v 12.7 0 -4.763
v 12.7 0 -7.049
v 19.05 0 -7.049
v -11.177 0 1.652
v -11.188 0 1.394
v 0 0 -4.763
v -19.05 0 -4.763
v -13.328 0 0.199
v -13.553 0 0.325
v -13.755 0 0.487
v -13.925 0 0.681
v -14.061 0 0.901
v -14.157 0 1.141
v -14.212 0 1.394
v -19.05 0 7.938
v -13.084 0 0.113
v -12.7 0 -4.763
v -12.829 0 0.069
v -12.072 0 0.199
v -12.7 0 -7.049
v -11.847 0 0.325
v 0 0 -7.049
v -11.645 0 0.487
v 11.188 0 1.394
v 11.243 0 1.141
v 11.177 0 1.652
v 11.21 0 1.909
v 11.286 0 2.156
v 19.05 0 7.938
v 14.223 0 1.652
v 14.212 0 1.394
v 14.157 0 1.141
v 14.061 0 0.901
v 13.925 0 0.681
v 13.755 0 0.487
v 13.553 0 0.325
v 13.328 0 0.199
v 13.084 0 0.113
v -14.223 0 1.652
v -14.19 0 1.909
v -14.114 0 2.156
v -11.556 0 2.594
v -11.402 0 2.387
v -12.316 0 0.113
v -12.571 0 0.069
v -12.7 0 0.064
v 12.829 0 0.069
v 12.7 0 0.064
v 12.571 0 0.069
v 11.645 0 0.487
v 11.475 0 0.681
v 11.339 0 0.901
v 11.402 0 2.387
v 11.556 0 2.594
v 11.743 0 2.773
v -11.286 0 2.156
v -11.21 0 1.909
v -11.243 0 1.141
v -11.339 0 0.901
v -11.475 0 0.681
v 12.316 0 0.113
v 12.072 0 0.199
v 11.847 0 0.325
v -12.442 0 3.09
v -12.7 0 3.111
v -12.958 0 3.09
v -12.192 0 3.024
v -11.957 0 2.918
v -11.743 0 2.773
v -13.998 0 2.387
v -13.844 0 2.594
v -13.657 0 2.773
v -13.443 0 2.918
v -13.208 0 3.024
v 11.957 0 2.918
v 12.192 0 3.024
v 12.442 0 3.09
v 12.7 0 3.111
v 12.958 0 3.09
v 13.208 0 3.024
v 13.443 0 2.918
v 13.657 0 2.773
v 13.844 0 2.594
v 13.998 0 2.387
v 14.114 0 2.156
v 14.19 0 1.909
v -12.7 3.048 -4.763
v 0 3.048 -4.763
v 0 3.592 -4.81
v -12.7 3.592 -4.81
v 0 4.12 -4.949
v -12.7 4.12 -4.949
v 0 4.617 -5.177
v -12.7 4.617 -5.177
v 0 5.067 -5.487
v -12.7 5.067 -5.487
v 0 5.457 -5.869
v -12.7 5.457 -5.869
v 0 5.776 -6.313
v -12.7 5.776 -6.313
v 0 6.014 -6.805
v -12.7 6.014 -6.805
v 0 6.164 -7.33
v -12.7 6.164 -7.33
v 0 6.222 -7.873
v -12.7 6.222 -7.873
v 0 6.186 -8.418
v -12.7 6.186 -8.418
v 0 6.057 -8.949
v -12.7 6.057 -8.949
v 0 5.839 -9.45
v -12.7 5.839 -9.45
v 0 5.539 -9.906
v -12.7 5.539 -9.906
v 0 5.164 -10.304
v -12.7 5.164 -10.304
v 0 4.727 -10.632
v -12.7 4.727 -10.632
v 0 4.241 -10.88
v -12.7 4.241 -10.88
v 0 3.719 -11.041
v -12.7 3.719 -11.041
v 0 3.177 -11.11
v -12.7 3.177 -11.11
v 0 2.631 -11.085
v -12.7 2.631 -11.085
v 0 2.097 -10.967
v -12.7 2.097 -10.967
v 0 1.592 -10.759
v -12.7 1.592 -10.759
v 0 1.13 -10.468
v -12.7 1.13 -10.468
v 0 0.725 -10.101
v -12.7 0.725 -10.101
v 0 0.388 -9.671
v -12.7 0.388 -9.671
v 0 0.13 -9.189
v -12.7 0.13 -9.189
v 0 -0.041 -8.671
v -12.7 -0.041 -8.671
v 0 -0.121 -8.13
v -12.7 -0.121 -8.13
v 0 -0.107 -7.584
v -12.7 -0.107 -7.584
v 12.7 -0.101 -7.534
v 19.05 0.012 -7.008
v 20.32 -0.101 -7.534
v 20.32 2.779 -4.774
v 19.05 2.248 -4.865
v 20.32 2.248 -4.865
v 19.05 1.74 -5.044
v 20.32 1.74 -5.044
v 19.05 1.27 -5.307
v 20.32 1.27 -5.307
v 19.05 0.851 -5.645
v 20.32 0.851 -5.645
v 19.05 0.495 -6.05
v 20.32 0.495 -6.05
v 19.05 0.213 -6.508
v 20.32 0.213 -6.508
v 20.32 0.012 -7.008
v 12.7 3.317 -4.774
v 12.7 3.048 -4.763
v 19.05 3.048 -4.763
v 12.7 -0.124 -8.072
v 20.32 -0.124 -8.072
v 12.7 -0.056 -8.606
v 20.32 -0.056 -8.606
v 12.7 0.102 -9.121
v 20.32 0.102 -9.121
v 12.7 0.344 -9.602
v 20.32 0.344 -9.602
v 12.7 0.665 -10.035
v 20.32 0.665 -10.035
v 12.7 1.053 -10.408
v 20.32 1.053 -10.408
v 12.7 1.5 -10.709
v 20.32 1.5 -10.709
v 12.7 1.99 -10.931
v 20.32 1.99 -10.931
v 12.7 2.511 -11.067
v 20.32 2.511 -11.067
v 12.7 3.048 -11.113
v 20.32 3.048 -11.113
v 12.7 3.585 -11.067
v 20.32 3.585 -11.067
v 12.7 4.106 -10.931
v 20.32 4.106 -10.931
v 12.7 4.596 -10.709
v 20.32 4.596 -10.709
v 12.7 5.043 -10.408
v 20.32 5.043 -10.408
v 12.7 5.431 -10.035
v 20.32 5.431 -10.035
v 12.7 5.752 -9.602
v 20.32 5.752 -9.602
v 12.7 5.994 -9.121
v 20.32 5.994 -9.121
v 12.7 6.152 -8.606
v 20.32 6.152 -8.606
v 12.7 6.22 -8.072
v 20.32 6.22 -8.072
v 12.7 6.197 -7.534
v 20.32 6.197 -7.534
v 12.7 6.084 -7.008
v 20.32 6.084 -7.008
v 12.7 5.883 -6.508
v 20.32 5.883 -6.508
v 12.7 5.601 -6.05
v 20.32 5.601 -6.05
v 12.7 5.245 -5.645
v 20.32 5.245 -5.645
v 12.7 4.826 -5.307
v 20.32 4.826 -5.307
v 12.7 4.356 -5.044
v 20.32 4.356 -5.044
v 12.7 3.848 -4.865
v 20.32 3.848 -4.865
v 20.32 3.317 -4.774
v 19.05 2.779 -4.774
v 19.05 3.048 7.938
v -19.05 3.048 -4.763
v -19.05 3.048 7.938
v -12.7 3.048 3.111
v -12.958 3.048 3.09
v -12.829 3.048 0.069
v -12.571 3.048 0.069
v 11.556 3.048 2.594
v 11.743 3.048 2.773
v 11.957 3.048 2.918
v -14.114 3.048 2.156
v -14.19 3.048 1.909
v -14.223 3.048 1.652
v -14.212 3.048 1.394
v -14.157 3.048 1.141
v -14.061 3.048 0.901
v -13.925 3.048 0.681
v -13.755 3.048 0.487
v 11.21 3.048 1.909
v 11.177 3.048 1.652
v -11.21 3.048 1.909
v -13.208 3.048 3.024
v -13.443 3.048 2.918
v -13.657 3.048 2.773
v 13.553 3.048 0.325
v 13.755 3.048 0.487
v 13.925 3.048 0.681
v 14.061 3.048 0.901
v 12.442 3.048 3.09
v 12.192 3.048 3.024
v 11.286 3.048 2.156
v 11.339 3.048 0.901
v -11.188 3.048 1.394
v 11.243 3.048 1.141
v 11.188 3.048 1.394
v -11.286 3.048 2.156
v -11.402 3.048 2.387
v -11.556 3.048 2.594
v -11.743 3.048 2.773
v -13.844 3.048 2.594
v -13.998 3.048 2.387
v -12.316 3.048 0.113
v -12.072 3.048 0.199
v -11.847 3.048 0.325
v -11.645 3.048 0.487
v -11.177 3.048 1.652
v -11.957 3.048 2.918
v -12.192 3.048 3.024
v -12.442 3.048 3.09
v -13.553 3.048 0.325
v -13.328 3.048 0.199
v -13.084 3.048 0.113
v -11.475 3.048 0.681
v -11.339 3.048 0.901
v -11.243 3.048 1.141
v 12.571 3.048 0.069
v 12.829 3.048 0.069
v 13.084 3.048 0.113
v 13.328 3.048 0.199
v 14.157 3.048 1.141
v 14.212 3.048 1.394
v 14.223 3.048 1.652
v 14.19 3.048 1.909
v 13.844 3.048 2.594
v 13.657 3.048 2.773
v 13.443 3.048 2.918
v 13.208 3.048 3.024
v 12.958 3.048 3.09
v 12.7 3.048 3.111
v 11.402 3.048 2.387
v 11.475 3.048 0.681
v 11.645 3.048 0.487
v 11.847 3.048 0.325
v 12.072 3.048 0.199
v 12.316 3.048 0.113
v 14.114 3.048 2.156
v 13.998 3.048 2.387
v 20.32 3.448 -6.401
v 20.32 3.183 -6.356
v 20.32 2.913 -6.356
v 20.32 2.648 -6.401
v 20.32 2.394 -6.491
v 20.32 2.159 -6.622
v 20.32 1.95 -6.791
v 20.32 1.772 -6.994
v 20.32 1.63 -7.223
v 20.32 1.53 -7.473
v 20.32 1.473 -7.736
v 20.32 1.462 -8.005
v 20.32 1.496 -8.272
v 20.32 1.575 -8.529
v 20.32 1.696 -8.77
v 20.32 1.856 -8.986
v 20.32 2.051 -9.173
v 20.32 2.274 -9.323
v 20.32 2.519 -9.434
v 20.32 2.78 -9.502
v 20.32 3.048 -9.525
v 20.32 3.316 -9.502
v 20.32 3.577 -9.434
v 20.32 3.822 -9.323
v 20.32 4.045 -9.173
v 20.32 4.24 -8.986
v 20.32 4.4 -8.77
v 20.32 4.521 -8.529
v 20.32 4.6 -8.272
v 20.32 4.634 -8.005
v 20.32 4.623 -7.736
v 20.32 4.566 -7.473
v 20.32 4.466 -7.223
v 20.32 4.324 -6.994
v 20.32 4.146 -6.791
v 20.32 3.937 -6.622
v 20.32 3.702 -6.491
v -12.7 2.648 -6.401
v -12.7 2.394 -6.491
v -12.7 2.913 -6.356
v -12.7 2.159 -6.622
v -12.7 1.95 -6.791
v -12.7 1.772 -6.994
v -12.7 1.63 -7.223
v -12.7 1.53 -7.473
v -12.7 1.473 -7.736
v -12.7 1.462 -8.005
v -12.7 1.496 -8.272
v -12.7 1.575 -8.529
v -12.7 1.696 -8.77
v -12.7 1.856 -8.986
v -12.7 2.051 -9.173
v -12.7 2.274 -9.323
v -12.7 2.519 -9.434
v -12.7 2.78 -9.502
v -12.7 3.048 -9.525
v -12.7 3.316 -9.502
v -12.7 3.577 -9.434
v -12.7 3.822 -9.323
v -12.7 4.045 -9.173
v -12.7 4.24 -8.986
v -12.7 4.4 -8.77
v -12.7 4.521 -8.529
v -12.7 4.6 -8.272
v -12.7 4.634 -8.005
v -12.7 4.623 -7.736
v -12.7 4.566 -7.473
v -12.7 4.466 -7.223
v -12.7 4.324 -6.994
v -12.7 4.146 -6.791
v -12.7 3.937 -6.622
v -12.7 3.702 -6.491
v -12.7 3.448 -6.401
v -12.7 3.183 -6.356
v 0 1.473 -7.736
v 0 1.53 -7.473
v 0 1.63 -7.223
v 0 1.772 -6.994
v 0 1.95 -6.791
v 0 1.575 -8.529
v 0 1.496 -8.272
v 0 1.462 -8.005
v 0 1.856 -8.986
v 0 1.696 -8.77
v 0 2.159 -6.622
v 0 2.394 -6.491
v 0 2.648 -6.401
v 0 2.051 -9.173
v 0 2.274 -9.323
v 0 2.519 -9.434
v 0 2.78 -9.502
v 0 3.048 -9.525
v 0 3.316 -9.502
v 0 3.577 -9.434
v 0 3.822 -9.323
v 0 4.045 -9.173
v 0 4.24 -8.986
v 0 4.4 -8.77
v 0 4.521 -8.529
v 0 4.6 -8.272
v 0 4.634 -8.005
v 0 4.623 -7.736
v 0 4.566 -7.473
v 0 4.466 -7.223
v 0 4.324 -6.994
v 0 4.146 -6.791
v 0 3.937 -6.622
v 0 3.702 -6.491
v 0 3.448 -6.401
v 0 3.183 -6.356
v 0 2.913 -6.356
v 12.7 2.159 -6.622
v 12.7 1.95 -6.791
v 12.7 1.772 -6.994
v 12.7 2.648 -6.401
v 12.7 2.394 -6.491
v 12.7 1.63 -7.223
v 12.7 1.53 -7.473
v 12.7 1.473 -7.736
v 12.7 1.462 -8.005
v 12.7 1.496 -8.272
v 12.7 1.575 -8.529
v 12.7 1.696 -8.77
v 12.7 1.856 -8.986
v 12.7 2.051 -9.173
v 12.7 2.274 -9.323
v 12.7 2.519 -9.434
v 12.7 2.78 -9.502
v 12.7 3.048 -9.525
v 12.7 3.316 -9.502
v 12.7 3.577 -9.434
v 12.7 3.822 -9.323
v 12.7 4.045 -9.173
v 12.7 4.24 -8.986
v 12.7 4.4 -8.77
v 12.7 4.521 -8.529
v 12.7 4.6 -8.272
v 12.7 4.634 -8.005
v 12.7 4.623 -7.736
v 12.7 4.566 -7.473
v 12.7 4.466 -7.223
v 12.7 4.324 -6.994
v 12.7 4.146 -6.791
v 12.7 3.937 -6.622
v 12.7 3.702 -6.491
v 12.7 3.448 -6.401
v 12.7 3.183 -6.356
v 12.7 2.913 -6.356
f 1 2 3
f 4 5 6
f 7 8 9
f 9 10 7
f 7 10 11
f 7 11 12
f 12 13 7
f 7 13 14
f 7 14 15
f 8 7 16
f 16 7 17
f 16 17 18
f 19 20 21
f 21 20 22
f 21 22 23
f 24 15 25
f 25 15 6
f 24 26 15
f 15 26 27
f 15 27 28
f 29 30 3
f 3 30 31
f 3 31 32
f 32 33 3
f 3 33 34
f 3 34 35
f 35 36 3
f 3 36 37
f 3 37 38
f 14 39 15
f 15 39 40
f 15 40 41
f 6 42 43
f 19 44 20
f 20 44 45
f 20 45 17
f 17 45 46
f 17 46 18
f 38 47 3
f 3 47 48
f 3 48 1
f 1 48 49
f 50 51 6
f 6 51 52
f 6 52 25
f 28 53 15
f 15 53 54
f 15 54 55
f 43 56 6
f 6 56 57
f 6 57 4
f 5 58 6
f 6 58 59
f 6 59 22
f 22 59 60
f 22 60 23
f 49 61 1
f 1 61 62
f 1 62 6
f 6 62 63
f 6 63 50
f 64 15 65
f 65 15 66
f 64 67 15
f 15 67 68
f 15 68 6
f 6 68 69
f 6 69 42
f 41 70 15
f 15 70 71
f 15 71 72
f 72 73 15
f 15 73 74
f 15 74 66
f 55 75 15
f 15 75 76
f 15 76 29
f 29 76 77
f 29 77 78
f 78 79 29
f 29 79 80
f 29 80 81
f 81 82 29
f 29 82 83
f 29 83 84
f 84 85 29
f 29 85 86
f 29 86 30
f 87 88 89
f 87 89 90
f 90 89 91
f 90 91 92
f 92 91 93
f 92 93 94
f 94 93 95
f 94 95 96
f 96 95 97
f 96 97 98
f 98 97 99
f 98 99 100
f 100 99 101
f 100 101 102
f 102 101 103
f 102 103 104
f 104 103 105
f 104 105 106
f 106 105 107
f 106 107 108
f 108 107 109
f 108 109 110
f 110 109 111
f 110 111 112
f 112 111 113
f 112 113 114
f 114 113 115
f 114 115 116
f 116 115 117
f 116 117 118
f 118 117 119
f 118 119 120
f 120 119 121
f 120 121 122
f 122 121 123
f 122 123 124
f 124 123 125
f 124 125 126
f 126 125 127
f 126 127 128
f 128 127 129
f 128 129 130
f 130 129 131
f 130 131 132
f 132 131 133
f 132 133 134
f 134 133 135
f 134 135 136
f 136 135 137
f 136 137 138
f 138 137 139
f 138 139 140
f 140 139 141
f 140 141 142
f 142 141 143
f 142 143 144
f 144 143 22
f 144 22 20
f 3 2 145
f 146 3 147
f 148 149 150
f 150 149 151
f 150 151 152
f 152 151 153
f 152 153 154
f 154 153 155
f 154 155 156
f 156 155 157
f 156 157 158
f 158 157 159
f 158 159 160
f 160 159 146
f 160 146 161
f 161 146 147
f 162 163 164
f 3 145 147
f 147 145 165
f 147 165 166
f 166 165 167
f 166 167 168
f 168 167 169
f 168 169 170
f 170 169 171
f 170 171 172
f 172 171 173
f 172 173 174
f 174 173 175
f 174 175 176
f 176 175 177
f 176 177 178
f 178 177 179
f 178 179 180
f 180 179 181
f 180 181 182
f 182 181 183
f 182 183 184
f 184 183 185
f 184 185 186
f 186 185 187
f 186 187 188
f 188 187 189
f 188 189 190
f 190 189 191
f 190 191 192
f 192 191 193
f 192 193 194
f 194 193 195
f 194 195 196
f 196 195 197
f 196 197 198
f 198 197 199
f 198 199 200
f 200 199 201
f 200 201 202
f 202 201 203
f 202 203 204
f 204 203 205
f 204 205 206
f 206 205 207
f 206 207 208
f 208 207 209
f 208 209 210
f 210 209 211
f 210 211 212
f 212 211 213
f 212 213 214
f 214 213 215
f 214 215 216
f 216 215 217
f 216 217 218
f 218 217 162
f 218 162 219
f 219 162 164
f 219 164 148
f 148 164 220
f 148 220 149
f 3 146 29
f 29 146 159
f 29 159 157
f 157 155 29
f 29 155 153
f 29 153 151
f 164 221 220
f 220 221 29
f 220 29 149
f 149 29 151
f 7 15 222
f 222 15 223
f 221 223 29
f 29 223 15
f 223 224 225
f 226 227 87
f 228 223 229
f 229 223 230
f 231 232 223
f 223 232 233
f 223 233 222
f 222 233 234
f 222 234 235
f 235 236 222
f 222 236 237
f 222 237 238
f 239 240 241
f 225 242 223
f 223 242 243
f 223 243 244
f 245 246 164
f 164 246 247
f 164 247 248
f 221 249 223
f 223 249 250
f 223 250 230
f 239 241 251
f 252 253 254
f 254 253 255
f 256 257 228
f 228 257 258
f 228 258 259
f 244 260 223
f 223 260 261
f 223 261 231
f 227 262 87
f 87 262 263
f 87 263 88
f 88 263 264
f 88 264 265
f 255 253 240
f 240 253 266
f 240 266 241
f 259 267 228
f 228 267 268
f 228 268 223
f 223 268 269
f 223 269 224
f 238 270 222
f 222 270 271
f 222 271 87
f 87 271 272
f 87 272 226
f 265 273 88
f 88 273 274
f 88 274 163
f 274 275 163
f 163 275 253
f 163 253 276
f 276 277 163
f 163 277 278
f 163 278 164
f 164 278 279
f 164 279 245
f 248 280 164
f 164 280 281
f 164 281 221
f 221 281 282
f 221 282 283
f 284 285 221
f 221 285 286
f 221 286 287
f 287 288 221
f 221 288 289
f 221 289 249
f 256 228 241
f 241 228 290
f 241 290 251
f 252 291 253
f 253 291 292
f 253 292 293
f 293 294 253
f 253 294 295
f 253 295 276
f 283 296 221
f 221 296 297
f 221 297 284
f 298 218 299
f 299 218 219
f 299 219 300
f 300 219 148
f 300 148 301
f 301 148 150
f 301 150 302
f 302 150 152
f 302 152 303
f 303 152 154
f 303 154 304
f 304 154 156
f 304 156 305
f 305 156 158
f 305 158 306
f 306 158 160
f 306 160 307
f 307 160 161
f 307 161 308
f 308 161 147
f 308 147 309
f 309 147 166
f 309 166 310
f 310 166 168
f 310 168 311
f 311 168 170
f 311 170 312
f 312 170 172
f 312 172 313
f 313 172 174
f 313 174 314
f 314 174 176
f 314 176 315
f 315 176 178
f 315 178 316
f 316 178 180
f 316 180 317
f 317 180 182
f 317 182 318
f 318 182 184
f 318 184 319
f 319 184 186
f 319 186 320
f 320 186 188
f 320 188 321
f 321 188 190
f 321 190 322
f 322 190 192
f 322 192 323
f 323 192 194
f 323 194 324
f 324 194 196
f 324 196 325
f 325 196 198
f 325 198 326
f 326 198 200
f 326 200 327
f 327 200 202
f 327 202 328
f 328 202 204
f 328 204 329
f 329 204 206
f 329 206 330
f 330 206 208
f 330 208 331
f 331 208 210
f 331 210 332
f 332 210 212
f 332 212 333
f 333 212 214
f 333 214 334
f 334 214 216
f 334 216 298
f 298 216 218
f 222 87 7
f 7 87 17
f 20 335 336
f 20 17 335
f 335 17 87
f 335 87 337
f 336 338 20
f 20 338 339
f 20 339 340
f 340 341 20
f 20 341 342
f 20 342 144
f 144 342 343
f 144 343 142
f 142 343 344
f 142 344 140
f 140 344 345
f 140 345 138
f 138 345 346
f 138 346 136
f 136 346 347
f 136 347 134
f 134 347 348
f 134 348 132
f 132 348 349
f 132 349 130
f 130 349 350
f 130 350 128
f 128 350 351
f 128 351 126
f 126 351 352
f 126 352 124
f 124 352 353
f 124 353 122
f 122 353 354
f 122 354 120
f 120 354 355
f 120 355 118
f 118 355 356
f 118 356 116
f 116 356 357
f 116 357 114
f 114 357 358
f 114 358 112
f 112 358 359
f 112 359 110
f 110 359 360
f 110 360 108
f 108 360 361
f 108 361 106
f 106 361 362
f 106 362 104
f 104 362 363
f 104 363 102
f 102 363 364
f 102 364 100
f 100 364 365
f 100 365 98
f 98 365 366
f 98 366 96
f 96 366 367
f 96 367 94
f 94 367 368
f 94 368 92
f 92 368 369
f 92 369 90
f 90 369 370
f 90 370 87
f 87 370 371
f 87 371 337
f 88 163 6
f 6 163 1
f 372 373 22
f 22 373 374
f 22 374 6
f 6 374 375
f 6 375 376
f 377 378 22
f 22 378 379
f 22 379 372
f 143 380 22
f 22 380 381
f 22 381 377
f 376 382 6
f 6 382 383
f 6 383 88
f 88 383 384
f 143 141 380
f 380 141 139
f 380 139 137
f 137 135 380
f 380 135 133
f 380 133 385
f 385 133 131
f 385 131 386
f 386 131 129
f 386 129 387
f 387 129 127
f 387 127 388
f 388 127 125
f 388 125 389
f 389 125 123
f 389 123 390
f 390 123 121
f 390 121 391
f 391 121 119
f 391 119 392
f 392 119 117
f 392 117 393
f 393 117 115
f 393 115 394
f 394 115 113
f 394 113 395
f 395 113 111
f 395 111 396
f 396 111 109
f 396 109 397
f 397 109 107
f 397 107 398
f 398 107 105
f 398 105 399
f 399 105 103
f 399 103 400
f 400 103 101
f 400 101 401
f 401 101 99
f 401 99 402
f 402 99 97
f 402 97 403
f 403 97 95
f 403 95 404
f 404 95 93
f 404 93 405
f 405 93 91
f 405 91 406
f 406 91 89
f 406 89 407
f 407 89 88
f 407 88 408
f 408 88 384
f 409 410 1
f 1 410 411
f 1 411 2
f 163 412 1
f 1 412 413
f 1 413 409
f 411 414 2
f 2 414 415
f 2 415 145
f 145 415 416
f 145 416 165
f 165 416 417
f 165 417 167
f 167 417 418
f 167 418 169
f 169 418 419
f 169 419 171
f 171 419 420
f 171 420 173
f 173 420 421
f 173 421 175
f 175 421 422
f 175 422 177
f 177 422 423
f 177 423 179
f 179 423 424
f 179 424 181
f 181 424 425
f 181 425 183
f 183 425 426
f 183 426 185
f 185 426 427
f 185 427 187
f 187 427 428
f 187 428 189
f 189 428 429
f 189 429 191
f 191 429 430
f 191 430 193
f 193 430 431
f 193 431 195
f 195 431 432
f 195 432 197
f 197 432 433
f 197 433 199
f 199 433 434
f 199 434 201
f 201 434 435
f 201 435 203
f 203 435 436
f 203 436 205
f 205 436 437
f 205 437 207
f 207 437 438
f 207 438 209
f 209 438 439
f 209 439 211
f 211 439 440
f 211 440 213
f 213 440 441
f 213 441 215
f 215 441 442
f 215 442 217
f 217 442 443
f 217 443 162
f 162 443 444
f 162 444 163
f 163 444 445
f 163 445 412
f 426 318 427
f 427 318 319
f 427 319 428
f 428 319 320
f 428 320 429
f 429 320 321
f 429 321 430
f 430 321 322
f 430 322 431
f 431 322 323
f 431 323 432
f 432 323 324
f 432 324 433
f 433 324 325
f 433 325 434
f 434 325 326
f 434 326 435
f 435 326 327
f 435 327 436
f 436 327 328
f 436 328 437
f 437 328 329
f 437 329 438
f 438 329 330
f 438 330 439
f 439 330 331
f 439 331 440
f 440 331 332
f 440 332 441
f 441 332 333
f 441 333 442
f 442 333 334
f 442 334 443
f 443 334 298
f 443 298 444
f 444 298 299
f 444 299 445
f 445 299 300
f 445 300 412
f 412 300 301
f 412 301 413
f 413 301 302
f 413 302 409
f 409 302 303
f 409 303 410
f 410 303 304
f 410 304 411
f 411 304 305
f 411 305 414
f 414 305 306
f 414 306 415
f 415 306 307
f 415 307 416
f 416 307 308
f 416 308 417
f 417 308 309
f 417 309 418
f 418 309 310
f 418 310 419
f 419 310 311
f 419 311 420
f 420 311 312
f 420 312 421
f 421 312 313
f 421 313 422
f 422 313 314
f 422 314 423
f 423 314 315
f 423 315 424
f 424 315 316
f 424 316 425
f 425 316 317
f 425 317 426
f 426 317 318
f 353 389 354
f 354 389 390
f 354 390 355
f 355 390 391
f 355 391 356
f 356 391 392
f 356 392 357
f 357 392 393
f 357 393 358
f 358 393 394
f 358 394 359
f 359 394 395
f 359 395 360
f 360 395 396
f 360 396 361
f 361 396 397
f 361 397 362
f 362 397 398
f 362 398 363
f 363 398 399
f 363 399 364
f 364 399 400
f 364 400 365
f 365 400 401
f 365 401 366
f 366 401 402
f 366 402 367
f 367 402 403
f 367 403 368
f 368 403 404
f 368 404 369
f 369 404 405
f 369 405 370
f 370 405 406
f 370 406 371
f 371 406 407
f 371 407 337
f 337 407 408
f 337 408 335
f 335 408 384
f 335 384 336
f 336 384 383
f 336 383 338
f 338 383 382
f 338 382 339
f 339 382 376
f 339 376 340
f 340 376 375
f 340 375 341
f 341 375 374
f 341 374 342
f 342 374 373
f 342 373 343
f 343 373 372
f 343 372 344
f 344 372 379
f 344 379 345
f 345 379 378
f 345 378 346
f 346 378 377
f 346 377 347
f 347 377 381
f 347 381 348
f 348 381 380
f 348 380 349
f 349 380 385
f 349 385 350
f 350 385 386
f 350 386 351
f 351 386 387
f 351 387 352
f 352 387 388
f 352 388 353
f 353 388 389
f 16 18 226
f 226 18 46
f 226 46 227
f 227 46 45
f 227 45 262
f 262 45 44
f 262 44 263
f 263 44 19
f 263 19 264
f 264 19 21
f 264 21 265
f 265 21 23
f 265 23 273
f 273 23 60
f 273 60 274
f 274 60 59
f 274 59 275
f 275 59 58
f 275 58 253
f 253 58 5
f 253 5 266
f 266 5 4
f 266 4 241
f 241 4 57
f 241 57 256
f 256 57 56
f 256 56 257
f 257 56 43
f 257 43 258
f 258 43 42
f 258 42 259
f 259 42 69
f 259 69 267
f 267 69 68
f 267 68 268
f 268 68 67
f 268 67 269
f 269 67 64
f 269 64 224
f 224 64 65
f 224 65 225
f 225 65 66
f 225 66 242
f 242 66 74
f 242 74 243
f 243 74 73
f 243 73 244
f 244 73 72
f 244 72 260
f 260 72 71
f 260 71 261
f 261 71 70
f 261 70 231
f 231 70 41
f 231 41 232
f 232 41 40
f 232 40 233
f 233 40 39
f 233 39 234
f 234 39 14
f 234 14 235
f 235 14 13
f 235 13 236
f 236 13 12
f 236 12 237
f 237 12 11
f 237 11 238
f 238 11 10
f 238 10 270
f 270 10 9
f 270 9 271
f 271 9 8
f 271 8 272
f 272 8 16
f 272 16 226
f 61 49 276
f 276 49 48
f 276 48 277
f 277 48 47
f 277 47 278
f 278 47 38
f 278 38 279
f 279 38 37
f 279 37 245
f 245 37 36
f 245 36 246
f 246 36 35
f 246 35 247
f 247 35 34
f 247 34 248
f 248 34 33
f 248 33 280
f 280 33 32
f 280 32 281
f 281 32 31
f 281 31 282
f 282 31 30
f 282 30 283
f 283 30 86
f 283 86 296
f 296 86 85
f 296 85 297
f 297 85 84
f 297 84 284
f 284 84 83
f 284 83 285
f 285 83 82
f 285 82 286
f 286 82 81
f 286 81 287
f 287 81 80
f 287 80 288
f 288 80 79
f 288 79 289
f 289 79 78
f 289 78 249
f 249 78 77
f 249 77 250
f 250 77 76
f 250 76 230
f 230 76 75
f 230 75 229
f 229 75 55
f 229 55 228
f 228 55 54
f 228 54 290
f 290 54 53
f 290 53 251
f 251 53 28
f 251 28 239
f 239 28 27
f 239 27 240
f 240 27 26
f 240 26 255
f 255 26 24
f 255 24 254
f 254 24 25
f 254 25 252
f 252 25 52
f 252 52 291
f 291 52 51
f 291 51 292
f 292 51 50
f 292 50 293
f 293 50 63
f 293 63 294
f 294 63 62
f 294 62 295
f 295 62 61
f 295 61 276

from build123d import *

# Parameters (mm, degrees)
SKETCH1_W                    = 38.1
SKETCH1_H                    = 15.875
BOSS_EXTRUDE1_DEPTH          = 3.048
SKETCH2_R                    = 3.175
BOSS_EXTRUDE2_DEPTH          = 1.27
BOSS_EXTRUDE2_DEPTH_BACK     = 39.37
SKETCH7_W                    = 12.7
SKETCH7_H                    = 6.35
CUT_EXTRUDE_THIN2_DEPTH      = 7.223
CUT_EXTRUDE_THIN2_DEPTH_BACK = 1.127
SKETCH8_R                    = 1.5875
CUT_EXTRUDE2_DEPTH           = 40.37
SKETCH9_R                    = 1.524
CUT_EXTRUDE3_DEPTH           = 4.175


with BuildPart() as part:
    # Sketch1 → Boss-Extrude1 (new body)
    with BuildSketch(Plane(origin=(0, 0, 0), x_dir=(1, 0, 0), z_dir=(0, 1, 0))):
        Rectangle(SKETCH1_W, SKETCH1_H)
    extrude(amount=BOSS_EXTRUDE1_DEPTH)

    # Sketch2 → Boss-Extrude2 (add, two sides)
    with BuildSketch(Plane(origin=(19.05, 0, 0), x_dir=(0, 0, -1), z_dir=(1, 0, 0))) as boss_extrude2_sk:
        with Locations((7.9375, 3.048)):
            Circle(SKETCH2_R)
    extrude(amount=BOSS_EXTRUDE2_DEPTH)
    extrude(boss_extrude2_sk.sketch, amount=-BOSS_EXTRUDE2_DEPTH_BACK)

    # Sketch7 → Cut-Extrude-Thin2 (cut, two sides)
    with BuildSketch(Plane(origin=(0, 0, 0), x_dir=(1, 0, 0), z_dir=(0, 1, 0))) as cut_extrude_thin2_sk:
        with Locations((-19.05, 7.9375)):
            Rectangle(SKETCH7_W, SKETCH7_H)
        with Locations((6.35, 7.9375)):
            Rectangle(SKETCH7_W, SKETCH7_H)
    extrude(amount=CUT_EXTRUDE_THIN2_DEPTH, mode=Mode.SUBTRACT)
    extrude(cut_extrude_thin2_sk.sketch, amount=-CUT_EXTRUDE_THIN2_DEPTH_BACK, mode=Mode.SUBTRACT)

    # Sketch8 → Cut-Extrude2 (cut, through all)
    with BuildSketch(Plane(origin=(20.32, 0, 0), x_dir=(0, 0, -1), z_dir=(1, 0, 0))):
        with Locations((7.9375, 3.048)):
            Circle(SKETCH8_R)
    extrude(amount=-CUT_EXTRUDE2_DEPTH, mode=Mode.SUBTRACT)

    # Sketch9 → Cut-Extrude3 (cut, through all)
    with BuildSketch(Plane(origin=(0, 3.048, 0), x_dir=(1, 0, 0), z_dir=(0, 1, 0))):
        with Locations((-12.7, -1.5875)):
            Circle(SKETCH9_R)
        with Locations((12.7, -1.5875)):
            Circle(SKETCH9_R)
    extrude(amount=-CUT_EXTRUDE3_DEPTH, mode=Mode.SUBTRACT)


solid = part.part
